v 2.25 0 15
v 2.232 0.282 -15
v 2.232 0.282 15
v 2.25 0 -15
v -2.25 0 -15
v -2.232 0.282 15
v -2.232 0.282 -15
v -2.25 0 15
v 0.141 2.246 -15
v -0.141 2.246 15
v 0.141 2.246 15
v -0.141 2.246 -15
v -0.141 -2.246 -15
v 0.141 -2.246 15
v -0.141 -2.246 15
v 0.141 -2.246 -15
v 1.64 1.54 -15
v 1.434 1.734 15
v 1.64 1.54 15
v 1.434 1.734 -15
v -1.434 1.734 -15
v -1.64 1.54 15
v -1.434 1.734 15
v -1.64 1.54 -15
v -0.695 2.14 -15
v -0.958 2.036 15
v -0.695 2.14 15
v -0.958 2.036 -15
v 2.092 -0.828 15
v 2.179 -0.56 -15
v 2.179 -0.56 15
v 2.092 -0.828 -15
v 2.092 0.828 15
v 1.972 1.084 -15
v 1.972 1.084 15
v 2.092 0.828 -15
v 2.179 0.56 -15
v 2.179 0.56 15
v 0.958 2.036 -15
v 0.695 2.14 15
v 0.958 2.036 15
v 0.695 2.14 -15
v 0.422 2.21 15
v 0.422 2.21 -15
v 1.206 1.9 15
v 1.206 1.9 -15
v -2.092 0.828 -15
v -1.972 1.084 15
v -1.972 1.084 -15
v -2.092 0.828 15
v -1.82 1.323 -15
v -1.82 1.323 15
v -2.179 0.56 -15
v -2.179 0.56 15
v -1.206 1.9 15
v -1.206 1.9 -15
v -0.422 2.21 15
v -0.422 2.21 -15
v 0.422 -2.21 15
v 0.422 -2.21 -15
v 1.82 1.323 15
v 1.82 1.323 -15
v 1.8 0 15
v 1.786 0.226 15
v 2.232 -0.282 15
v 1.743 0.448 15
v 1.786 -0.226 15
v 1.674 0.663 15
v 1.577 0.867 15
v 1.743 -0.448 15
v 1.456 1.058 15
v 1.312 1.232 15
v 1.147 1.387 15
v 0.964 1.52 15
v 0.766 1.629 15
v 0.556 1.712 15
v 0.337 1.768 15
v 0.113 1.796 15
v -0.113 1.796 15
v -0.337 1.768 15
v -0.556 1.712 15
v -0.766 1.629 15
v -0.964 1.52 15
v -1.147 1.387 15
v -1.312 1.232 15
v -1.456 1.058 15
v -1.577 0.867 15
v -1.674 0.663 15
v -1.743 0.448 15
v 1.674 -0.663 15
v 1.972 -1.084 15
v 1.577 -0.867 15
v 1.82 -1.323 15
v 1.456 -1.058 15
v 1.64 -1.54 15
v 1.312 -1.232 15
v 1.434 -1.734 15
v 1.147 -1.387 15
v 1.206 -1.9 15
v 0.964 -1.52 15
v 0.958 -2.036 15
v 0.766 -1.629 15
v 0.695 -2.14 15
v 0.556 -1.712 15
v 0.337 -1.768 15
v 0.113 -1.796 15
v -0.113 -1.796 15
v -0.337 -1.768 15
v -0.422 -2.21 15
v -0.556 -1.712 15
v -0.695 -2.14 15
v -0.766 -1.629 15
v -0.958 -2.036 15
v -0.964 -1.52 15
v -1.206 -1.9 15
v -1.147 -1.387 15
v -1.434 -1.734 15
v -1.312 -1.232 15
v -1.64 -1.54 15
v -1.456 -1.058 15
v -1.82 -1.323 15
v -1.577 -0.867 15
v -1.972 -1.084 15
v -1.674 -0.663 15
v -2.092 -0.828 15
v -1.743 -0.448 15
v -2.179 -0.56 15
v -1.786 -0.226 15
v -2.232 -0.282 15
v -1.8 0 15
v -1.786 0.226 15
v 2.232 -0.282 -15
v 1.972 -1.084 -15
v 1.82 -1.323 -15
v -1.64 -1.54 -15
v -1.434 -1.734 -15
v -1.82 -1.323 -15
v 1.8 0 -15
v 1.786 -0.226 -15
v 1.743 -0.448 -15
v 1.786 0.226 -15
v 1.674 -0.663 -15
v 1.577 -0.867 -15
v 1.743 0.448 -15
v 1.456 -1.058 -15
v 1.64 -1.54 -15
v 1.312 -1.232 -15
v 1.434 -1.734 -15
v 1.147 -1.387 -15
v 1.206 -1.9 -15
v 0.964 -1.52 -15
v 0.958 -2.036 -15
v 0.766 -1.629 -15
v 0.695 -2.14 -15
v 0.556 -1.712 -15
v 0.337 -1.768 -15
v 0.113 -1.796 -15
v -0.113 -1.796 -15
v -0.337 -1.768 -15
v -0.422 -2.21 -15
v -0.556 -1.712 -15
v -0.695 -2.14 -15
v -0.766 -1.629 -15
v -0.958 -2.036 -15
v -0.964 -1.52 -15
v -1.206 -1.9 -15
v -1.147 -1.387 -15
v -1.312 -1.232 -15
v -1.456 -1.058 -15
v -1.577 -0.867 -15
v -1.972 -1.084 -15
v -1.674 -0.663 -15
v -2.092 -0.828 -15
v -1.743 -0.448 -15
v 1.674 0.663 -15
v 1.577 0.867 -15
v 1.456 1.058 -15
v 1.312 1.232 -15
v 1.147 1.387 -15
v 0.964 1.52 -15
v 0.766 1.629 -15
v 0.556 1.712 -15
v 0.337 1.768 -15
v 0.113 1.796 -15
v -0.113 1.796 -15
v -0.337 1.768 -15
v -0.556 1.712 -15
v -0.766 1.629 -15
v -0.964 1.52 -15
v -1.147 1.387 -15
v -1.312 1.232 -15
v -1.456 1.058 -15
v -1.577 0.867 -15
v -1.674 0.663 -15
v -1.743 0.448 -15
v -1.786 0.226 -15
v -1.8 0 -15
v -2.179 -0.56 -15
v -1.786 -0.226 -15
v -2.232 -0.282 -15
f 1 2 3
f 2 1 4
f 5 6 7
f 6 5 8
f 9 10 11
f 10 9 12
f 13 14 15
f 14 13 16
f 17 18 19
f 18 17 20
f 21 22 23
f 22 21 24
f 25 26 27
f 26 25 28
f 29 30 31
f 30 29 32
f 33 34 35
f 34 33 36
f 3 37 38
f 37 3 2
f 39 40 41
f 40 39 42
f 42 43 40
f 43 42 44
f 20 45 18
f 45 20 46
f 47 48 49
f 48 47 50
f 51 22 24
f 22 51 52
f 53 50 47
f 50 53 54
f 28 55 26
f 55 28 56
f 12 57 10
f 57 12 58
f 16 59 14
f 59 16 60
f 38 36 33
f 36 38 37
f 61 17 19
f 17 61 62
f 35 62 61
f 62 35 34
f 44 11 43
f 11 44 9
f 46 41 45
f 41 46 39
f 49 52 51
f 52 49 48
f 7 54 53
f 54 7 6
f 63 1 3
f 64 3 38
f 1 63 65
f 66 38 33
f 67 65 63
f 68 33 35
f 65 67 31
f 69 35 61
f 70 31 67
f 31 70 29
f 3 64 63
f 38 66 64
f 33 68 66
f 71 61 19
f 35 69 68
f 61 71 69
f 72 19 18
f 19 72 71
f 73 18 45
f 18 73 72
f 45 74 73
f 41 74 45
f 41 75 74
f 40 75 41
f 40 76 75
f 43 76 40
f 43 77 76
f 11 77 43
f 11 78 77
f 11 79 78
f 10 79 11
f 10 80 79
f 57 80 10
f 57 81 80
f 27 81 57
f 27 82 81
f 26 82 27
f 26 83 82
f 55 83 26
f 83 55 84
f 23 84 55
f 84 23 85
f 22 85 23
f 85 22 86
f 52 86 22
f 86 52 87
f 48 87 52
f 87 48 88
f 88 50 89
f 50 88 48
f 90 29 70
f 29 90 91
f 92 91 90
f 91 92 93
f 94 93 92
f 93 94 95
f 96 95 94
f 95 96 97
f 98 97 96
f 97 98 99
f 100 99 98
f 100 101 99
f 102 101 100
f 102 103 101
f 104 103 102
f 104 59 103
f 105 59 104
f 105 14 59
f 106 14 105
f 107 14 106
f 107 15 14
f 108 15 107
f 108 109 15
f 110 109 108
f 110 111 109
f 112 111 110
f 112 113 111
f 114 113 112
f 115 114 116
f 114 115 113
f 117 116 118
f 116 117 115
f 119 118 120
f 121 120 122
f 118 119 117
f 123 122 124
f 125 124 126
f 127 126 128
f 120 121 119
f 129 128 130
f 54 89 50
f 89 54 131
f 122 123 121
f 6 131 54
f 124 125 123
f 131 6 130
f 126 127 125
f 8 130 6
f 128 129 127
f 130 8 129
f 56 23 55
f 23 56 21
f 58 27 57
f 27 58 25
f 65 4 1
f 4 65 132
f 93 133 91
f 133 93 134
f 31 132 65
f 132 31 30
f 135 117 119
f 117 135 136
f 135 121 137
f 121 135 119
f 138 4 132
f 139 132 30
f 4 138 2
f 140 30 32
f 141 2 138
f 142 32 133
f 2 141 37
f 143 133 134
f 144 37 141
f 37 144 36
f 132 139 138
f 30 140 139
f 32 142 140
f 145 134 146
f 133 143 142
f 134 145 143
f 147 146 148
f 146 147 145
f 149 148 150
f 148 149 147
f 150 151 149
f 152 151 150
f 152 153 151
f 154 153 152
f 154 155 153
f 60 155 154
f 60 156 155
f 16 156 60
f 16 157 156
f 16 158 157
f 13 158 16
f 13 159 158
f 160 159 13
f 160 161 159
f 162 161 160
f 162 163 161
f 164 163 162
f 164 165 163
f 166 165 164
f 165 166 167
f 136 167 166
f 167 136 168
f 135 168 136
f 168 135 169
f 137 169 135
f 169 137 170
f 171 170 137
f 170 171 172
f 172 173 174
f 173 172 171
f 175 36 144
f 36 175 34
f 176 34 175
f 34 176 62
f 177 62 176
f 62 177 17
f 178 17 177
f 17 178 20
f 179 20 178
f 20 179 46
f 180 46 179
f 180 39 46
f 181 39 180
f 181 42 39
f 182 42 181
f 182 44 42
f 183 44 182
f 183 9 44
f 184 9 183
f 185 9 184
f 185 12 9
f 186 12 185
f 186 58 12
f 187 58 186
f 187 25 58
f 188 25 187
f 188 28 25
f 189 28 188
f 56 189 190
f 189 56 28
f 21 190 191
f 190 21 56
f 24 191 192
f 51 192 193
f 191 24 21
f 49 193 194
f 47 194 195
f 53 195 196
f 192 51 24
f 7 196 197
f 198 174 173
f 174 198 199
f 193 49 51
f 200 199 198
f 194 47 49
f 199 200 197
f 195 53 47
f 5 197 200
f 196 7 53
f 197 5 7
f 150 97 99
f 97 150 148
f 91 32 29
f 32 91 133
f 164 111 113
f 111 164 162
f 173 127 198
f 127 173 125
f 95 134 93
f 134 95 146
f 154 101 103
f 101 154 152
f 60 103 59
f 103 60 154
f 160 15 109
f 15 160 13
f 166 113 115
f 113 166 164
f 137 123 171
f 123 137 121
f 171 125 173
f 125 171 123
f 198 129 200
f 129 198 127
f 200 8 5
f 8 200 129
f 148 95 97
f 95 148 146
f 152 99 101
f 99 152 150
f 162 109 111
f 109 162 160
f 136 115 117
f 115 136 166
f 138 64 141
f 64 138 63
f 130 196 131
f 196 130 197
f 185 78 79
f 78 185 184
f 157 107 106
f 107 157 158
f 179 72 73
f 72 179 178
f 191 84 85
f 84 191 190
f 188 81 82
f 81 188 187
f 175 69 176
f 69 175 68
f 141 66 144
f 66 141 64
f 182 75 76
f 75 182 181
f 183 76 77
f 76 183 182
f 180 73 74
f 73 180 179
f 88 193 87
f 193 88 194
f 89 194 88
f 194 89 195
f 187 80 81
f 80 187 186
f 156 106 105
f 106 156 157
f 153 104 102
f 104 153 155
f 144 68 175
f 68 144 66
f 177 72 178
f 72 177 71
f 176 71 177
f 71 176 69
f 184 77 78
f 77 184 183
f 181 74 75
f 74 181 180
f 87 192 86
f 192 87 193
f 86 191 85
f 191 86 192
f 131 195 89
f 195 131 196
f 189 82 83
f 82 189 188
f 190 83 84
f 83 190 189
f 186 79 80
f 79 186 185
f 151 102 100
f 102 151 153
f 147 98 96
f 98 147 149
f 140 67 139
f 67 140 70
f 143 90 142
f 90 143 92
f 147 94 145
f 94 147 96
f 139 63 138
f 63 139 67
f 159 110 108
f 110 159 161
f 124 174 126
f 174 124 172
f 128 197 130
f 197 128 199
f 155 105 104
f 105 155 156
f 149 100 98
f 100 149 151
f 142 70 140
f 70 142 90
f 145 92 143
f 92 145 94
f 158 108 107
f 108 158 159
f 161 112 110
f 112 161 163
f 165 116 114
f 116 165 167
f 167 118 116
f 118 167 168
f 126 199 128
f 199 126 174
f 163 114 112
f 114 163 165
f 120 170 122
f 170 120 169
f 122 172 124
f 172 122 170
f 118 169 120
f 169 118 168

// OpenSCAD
$fn = 50;


difference() {
	union() {
		translate(v = [0, 0, -15.0000000000]) {
			cylinder(h = 30, r = 2.2500000000);
		}
	}
	union() {
		translate(v = [0, 0, -100.0000000000]) {
			cylinder(h = 200, r = 1.8000000000);
		}
	}
}
